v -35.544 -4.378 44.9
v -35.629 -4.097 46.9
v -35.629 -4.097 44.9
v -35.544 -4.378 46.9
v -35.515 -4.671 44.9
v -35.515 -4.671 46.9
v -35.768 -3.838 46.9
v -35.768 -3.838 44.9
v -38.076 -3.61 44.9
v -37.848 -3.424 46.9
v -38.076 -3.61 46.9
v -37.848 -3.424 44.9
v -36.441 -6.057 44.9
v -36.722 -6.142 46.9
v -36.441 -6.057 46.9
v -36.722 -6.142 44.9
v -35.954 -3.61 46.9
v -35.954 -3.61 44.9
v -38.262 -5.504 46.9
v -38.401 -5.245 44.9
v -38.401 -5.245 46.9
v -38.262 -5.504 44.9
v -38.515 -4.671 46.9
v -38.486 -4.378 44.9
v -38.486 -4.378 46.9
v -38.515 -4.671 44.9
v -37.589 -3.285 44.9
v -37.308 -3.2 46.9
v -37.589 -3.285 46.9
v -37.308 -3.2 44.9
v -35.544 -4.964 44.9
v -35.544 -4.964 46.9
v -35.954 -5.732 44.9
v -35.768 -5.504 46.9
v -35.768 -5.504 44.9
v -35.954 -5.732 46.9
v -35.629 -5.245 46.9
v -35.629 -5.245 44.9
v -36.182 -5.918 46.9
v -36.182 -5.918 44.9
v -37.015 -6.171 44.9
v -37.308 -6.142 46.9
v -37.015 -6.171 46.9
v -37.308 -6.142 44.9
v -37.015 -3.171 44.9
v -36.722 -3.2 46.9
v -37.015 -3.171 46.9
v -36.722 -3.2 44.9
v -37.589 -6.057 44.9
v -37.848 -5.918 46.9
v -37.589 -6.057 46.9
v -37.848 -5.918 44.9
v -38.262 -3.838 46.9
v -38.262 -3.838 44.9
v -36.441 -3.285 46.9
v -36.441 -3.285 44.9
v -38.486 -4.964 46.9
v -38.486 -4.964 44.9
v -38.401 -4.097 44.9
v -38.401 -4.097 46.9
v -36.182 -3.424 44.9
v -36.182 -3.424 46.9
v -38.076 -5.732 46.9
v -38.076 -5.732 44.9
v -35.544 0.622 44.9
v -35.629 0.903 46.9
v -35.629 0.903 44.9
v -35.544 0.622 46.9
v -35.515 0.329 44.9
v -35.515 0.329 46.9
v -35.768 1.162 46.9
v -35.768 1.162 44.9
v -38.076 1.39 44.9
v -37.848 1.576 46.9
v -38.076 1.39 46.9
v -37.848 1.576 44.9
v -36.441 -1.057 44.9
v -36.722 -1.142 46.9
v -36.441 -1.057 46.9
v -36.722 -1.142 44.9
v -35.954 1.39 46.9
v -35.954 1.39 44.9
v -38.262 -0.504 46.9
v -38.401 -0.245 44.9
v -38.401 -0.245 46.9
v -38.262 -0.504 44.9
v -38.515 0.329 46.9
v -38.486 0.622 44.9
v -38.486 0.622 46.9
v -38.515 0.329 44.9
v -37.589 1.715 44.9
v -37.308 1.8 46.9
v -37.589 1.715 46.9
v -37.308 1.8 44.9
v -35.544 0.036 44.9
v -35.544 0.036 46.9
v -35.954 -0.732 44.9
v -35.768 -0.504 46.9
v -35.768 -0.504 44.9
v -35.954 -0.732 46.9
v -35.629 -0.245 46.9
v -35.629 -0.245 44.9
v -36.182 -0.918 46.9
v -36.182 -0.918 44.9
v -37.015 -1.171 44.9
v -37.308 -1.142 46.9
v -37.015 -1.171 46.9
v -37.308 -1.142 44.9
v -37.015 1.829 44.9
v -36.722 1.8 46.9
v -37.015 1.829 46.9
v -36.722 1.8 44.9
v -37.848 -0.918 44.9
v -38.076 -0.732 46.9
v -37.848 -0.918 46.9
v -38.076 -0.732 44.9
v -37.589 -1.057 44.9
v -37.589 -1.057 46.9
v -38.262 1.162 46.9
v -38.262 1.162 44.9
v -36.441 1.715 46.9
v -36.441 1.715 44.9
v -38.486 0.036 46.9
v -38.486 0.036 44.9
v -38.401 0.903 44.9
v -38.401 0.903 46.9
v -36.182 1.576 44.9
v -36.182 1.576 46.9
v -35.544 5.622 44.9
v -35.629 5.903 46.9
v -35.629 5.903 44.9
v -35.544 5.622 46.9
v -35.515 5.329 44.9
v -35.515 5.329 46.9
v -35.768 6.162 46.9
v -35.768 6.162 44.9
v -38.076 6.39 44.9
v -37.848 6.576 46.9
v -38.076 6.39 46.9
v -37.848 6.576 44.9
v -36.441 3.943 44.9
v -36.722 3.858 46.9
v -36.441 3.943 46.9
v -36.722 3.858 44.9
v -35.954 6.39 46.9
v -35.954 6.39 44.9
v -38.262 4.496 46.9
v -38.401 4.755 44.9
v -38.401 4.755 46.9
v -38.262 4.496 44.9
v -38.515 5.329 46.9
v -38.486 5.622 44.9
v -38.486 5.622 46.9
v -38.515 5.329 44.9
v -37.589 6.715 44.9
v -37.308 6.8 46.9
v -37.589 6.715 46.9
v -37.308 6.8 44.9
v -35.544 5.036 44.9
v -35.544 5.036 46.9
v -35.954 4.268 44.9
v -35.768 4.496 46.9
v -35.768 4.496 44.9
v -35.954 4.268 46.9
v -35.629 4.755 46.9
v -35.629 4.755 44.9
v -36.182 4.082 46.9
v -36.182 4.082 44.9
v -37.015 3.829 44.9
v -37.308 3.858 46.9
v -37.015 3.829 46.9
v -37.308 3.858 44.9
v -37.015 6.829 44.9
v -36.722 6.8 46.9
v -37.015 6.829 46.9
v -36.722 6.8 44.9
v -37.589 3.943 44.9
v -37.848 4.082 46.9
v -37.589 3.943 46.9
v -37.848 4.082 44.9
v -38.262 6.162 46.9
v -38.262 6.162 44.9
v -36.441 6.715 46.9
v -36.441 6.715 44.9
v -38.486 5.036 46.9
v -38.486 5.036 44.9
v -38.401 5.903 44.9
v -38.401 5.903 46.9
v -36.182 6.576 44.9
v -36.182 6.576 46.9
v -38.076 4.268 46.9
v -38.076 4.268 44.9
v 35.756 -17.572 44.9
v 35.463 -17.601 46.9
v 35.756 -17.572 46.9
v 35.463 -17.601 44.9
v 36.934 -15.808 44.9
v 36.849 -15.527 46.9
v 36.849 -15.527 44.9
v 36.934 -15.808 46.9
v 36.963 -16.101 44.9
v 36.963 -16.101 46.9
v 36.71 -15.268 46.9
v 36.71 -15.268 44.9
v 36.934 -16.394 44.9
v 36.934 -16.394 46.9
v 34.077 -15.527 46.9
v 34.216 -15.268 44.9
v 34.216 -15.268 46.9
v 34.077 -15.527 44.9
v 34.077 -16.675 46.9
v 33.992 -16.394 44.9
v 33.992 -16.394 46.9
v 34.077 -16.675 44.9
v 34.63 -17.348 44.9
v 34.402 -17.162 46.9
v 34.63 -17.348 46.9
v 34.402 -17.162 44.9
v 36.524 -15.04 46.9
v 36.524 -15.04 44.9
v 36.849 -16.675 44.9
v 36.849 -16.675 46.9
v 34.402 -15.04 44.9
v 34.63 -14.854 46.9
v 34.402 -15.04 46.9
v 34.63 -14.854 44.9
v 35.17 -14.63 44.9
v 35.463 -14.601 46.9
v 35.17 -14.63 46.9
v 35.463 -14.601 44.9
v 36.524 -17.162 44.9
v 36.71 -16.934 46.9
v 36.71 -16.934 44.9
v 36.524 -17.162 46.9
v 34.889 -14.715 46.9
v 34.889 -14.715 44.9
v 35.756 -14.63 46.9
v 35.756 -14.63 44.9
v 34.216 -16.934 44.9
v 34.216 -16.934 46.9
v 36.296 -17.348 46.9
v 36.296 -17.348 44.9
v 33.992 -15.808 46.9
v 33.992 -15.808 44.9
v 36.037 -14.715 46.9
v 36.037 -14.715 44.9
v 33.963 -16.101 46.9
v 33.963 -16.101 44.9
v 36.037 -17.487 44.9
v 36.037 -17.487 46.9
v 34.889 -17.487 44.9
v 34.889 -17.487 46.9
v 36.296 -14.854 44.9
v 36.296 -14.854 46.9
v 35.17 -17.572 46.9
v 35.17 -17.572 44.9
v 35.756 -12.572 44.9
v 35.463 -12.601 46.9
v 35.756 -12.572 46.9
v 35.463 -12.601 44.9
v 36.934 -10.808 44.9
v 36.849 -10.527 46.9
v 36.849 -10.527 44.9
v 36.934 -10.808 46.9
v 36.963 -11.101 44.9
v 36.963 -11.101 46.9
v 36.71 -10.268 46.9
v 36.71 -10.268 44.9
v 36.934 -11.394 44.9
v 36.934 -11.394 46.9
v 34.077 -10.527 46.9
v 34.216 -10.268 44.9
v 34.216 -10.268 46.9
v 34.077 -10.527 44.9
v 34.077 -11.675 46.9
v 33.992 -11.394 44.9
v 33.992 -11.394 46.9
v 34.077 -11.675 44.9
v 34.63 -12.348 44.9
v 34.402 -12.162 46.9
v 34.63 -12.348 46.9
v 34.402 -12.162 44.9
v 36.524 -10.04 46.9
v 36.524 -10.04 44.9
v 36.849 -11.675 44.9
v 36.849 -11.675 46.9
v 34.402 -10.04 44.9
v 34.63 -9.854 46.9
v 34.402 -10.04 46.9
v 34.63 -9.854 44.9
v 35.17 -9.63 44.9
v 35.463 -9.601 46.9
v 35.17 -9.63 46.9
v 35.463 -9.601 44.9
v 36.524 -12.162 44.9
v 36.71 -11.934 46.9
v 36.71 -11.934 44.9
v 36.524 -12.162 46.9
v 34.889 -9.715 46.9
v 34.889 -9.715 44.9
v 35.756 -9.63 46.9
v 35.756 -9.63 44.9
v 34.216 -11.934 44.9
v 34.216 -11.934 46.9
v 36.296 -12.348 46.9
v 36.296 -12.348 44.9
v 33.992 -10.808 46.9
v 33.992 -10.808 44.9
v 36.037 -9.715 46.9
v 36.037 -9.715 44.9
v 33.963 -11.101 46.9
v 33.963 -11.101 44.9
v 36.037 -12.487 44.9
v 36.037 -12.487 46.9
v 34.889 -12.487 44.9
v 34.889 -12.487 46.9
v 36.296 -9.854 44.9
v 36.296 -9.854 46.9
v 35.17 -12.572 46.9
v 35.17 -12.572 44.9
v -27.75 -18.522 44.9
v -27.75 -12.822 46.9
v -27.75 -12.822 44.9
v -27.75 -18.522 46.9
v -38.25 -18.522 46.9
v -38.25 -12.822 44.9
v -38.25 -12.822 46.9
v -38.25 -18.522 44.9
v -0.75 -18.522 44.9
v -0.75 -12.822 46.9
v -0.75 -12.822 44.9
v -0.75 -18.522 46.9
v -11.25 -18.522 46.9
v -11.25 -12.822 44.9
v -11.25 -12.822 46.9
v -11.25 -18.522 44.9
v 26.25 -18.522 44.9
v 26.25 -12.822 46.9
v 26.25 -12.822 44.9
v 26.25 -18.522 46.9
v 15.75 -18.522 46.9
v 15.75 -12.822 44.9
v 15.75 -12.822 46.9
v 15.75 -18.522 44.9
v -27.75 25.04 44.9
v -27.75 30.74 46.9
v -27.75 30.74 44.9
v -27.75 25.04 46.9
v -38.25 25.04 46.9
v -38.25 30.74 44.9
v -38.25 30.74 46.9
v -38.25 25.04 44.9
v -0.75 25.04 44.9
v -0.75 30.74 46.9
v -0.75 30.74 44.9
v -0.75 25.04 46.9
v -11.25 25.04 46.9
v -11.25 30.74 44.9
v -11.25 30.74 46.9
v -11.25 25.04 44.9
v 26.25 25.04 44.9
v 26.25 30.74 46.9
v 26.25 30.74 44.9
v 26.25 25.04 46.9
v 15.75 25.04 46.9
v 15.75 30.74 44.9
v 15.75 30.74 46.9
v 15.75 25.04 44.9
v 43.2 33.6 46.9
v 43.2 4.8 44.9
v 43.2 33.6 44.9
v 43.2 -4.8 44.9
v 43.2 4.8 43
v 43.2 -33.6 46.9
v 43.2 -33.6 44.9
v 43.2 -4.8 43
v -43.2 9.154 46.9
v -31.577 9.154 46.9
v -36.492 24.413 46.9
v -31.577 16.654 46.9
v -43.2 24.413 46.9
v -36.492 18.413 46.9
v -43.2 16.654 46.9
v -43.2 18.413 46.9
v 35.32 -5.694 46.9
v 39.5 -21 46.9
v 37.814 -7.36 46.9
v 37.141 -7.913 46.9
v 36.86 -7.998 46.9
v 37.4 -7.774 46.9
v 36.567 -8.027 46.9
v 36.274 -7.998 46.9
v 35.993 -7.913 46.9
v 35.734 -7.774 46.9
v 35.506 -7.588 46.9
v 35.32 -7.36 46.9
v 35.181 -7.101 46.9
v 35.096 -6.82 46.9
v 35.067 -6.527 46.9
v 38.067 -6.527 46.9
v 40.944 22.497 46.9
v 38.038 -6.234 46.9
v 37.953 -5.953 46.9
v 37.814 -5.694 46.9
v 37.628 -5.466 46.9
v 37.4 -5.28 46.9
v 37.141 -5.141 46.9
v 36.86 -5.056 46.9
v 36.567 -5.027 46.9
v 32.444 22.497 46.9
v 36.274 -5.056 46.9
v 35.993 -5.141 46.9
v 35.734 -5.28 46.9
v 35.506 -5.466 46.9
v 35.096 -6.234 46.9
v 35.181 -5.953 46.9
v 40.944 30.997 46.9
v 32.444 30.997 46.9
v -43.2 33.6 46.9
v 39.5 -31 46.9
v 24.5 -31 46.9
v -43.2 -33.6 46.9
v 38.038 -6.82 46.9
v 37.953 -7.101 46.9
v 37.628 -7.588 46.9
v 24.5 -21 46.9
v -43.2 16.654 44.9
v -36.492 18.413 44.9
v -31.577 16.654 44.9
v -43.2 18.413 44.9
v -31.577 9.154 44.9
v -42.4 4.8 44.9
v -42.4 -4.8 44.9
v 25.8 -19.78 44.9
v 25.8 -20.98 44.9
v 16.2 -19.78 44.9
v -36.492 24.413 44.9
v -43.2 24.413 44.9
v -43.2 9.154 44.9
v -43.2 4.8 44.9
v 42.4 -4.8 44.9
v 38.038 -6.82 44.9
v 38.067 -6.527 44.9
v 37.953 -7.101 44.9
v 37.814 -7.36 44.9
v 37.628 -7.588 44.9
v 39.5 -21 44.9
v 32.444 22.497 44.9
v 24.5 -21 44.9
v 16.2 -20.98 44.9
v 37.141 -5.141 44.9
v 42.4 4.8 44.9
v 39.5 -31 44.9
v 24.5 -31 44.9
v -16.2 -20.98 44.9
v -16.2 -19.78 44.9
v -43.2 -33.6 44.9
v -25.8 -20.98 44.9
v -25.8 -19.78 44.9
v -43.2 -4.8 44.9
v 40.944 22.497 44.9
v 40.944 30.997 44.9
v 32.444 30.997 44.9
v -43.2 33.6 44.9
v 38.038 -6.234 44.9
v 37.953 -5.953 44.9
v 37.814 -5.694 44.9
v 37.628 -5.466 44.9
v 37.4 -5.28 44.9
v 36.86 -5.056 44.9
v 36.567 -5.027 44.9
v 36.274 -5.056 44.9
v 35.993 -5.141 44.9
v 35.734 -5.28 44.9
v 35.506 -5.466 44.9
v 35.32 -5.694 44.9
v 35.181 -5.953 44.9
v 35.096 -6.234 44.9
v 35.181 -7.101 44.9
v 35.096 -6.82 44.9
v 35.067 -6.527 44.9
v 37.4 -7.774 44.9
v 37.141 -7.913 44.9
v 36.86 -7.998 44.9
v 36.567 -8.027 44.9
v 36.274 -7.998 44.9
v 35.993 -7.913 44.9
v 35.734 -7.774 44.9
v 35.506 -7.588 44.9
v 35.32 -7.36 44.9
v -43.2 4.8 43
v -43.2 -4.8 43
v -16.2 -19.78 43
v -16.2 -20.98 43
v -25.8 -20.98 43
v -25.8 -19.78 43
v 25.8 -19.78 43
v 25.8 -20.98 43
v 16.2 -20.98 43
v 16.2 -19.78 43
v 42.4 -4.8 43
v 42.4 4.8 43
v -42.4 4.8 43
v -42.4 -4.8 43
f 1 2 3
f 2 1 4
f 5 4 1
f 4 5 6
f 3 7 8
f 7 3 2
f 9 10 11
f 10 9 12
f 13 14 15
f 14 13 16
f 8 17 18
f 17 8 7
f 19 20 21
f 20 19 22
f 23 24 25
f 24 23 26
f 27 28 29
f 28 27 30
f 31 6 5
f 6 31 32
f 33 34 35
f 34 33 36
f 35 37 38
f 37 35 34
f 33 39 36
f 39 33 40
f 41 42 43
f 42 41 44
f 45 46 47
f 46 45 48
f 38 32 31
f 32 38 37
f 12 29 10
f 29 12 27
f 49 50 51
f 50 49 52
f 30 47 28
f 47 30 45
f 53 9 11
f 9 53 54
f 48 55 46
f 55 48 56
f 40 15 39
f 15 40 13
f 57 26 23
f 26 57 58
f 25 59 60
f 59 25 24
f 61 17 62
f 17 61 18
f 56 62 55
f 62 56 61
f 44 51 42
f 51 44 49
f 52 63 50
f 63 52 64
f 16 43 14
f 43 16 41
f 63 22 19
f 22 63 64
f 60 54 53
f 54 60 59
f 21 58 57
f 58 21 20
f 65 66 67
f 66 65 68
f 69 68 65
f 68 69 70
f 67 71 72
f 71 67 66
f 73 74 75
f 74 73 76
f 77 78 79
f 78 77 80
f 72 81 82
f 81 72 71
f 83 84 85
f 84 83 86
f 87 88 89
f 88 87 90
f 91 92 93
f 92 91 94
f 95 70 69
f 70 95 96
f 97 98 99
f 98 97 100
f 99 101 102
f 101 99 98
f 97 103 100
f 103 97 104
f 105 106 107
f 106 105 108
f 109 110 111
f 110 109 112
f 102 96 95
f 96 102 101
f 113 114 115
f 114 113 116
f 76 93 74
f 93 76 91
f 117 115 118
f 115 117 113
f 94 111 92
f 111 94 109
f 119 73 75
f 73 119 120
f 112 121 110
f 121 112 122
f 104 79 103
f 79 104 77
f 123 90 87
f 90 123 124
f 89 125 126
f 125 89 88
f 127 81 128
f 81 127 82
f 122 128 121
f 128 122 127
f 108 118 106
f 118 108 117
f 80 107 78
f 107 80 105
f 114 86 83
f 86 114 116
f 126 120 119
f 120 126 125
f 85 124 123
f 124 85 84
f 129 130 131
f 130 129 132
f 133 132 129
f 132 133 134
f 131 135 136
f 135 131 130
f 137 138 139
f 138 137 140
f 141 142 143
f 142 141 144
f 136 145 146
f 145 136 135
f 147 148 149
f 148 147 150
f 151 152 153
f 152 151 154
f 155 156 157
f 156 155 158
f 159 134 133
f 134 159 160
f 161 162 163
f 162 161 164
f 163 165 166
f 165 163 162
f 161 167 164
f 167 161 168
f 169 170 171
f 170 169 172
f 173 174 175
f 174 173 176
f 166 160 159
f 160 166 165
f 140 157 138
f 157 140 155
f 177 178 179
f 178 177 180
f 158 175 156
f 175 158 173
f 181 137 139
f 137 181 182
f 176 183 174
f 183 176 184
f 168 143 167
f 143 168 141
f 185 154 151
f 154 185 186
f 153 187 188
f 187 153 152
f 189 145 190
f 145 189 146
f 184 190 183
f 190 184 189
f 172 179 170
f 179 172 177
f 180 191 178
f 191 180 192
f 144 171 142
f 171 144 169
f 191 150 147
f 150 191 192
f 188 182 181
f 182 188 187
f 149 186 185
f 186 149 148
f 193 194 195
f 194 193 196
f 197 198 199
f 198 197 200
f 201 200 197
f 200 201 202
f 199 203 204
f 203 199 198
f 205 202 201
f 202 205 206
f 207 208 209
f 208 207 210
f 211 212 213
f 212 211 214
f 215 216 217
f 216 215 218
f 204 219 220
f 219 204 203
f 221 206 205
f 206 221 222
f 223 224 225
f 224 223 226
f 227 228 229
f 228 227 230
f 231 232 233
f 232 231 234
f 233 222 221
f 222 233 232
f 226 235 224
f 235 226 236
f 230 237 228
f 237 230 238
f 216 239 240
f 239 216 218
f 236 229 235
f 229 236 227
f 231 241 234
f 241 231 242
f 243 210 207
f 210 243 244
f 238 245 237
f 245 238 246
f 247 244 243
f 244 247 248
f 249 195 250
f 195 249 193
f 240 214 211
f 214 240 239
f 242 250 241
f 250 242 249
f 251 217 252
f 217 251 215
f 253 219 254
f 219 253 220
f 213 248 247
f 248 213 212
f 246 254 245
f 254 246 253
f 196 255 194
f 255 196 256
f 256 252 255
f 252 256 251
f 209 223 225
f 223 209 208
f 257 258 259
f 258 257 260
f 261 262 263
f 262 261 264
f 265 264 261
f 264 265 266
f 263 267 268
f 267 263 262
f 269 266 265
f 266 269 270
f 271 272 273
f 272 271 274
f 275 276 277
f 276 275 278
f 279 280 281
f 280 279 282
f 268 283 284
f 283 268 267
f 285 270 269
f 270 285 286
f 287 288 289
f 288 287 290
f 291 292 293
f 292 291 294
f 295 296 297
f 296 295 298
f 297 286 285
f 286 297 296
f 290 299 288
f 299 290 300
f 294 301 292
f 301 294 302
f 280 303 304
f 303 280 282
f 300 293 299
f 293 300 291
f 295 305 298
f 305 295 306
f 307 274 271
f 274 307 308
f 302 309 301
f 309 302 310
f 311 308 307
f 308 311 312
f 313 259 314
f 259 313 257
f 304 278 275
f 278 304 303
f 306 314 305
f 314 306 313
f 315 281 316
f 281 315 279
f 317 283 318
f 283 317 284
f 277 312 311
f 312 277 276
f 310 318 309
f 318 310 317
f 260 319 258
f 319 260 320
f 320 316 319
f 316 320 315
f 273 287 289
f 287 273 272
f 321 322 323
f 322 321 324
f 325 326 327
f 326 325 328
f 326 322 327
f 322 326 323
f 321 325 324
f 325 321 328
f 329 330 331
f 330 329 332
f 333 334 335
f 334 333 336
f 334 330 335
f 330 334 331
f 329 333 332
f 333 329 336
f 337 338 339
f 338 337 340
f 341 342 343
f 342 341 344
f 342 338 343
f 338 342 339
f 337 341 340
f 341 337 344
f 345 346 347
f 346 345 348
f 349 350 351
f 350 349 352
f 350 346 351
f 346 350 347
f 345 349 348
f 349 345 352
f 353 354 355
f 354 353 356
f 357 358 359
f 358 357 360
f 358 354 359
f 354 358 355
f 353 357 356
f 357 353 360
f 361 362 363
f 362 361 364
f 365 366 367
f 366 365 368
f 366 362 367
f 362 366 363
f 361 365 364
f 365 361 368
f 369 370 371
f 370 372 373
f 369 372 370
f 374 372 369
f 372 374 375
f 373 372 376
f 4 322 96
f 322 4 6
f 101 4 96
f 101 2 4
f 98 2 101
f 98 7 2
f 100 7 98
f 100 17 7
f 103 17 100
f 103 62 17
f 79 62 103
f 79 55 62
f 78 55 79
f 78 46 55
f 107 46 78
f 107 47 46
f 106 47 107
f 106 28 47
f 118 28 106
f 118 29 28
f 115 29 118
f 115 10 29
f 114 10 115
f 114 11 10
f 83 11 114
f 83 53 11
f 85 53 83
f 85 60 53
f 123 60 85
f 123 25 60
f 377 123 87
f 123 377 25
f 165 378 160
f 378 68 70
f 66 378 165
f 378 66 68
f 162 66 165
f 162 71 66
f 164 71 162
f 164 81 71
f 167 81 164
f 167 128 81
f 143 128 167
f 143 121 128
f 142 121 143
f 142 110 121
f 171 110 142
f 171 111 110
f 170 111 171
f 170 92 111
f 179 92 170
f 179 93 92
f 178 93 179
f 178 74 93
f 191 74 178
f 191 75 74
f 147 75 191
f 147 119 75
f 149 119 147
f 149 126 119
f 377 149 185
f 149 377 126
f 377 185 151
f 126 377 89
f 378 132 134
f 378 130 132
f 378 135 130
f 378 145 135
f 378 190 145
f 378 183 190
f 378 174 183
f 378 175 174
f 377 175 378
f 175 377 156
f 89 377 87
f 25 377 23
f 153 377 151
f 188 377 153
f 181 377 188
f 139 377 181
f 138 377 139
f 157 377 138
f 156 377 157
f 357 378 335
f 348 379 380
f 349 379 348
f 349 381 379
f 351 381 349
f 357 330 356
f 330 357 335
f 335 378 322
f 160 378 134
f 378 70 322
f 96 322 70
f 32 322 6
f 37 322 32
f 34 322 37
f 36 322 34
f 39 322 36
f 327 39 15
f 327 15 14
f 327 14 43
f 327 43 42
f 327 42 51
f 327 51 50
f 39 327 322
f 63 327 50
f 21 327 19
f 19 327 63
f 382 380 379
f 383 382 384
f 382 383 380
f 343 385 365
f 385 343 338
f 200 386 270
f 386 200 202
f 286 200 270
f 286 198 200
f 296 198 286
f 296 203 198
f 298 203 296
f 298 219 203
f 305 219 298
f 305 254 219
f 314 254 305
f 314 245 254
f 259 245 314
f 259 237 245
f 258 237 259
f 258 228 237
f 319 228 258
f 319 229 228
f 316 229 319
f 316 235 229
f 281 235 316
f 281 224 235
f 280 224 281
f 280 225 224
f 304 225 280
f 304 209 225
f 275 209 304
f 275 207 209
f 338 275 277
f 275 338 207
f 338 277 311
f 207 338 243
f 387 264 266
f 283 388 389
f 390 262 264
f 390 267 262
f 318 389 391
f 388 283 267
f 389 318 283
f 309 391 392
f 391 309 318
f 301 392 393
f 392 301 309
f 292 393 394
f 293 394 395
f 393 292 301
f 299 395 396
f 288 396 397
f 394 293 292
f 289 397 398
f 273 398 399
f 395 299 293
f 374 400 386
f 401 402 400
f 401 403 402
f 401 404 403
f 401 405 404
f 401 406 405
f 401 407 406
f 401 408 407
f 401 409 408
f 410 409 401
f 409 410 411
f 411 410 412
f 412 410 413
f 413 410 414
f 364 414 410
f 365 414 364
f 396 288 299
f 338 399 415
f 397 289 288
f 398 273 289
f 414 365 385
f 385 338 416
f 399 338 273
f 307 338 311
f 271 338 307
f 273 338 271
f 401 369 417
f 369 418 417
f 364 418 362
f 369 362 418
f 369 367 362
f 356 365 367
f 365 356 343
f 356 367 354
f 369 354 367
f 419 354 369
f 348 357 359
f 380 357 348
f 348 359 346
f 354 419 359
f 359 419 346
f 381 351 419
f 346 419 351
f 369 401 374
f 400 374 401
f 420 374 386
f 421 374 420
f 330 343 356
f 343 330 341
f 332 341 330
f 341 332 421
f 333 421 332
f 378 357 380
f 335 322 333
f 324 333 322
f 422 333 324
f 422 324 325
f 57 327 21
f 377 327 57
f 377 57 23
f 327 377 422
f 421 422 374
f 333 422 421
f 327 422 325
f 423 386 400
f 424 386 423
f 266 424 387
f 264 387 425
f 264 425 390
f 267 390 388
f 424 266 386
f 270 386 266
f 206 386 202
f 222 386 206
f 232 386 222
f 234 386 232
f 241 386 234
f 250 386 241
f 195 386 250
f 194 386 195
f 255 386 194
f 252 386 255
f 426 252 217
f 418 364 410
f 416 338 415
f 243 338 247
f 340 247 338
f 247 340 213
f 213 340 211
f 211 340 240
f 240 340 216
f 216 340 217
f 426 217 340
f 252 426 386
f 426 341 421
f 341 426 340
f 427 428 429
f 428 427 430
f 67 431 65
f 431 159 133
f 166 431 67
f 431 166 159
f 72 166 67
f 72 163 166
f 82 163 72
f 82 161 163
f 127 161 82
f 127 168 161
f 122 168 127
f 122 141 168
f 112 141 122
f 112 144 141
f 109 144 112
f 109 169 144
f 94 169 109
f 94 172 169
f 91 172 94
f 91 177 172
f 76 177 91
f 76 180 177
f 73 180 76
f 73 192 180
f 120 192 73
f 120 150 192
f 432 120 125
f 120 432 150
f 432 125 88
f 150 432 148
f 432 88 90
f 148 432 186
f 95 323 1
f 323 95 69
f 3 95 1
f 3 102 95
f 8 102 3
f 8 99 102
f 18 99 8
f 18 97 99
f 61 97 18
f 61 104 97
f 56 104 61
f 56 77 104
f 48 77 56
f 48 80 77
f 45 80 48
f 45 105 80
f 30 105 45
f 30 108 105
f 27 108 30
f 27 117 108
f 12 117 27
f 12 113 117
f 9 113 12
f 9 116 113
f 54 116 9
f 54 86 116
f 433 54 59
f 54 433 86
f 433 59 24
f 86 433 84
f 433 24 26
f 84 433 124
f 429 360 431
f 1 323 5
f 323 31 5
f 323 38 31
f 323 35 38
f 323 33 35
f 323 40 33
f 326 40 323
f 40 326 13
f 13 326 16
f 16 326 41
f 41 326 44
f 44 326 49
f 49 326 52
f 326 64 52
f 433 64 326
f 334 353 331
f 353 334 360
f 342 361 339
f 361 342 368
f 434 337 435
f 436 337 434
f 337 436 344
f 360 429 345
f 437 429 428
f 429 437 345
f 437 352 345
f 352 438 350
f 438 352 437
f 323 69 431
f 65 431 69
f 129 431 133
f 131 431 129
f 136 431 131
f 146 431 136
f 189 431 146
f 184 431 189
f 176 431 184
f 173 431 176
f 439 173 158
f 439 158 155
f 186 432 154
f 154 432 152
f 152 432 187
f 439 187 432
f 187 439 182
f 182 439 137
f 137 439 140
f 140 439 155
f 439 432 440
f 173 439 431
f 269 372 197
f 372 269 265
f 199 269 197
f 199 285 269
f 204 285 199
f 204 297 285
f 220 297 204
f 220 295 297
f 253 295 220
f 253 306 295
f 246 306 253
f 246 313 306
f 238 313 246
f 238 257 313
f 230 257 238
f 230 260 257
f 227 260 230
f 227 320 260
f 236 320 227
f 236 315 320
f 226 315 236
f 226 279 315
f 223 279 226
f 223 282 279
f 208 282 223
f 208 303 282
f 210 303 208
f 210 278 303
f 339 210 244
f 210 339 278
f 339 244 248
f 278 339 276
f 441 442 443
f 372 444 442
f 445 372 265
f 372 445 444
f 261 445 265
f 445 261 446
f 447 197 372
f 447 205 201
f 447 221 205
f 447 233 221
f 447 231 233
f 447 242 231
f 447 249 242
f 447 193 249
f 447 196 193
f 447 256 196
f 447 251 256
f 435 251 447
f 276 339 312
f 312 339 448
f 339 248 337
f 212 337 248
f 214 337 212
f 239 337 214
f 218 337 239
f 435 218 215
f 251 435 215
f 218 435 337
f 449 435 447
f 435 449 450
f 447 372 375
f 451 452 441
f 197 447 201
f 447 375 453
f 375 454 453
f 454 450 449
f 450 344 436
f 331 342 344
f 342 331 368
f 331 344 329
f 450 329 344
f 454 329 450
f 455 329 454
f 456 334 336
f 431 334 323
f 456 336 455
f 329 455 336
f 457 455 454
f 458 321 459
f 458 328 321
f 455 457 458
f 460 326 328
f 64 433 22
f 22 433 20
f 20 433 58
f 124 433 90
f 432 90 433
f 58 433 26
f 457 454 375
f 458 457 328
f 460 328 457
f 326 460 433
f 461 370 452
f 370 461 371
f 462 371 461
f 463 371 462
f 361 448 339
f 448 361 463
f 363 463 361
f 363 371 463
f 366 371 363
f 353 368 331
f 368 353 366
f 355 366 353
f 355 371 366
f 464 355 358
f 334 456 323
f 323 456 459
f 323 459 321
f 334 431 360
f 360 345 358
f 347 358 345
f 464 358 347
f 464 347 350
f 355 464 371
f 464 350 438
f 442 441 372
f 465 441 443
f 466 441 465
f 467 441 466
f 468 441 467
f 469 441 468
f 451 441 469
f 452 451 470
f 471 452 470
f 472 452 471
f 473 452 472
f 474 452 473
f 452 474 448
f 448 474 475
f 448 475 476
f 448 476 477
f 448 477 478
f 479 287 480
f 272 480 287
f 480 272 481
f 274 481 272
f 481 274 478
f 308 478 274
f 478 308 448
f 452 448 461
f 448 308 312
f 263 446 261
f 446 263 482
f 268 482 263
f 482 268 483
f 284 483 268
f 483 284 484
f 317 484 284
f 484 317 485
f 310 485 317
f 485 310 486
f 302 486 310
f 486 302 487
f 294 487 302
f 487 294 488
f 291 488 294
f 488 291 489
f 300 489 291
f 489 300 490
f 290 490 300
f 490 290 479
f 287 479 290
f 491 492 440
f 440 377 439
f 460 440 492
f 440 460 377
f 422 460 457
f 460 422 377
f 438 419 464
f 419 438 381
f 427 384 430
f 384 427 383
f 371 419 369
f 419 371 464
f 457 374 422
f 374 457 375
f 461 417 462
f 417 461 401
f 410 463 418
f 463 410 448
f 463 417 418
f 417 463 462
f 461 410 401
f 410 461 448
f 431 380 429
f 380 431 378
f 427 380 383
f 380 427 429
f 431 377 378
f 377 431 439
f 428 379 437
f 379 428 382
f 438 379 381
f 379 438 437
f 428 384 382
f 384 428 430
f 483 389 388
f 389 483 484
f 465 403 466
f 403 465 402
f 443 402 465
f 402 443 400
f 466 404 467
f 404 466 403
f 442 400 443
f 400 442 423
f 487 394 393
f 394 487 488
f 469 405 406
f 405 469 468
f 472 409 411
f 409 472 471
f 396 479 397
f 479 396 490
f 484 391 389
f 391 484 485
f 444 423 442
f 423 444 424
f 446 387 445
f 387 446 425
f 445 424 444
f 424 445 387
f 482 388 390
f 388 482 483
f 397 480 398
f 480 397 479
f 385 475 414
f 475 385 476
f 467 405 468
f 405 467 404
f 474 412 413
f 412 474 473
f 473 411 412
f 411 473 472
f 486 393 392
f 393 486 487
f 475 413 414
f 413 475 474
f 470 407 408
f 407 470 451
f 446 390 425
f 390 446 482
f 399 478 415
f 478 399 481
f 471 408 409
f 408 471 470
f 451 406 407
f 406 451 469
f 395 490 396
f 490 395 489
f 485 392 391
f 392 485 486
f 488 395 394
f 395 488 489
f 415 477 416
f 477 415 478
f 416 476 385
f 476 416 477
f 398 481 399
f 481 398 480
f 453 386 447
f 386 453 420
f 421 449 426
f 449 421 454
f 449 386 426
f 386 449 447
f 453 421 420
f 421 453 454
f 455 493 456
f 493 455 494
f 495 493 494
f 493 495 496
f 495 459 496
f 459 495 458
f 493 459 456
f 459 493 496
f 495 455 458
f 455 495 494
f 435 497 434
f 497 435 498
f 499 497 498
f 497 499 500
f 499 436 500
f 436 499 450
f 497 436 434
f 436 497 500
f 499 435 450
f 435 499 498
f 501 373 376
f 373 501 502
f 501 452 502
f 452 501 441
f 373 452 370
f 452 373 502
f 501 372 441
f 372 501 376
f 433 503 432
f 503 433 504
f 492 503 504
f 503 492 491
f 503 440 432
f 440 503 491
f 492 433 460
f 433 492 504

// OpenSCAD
use <../carcasa-spinosaurus.scad>

tapa(86.4, 67.2, 0, 0, 40.15);
